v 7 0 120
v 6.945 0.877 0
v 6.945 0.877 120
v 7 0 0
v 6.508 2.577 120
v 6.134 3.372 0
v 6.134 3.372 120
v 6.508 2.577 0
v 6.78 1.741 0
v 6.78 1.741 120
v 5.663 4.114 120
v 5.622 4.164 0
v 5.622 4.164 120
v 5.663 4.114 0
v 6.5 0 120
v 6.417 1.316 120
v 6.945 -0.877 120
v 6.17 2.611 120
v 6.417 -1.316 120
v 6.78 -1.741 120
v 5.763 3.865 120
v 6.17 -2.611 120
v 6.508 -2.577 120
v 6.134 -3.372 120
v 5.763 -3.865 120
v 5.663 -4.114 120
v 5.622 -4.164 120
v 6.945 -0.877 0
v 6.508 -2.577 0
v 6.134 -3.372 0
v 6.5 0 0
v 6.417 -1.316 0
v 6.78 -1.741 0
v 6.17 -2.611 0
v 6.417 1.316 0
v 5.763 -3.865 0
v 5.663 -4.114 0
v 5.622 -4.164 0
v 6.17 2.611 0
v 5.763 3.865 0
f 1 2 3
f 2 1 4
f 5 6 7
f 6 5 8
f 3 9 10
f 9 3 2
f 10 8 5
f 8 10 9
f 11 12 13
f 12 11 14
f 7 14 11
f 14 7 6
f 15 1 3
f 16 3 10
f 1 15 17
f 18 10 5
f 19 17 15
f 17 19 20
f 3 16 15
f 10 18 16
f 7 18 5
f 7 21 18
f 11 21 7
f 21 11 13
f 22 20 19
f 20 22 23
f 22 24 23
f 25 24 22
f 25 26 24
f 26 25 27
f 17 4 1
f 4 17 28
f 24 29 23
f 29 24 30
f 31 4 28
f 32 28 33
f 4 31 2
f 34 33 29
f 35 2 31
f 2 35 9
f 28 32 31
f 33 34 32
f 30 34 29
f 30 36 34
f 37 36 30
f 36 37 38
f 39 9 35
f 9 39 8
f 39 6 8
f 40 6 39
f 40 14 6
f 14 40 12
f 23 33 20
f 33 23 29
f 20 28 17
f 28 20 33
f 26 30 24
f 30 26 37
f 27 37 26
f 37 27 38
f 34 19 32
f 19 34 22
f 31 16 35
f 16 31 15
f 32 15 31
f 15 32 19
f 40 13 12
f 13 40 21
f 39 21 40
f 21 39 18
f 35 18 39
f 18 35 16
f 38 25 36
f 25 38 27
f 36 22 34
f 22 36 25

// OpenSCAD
$fn = 50;


difference() {
	union() {
		cylinder(h = 120, r = 7.0000000000);
		translate(v = [-7.0000000000, 0, 0]) {
			cylinder(h = 120, r = 7.0000000000);
		}
	}
	union() {
		cylinder(h = 120, r = 3.2500000000);
		cylinder(h = 120, r = 1.8000000000);
		cylinder(h = 120, r = 1.8000000000);
		cylinder(h = 120, r = 1.8000000000);
		translate(v = [-11.5000000000, 0, 0]) {
			hull() {
				translate(v = [-3.7500000000, 0.0000000000, 0]) {
					cylinder(h = 120, r = 10.5000000000);
				}
				translate(v = [3.7500000000, 0.0000000000, 0]) {
					cylinder(h = 120, r = 10.5000000000);
				}
				translate(v = [-3.7500000000, -0.0000000000, 0]) {
					cylinder(h = 120, r = 10.5000000000);
				}
				translate(v = [3.7500000000, -0.0000000000, 0]) {
					cylinder(h = 120, r = 10.5000000000);
				}
			}
		}
		translate(v = [-4.0000000000, 0, 0.0000000000]) {
			cylinder(h = 120, r = 10.5000000000);
		}
	}
}
